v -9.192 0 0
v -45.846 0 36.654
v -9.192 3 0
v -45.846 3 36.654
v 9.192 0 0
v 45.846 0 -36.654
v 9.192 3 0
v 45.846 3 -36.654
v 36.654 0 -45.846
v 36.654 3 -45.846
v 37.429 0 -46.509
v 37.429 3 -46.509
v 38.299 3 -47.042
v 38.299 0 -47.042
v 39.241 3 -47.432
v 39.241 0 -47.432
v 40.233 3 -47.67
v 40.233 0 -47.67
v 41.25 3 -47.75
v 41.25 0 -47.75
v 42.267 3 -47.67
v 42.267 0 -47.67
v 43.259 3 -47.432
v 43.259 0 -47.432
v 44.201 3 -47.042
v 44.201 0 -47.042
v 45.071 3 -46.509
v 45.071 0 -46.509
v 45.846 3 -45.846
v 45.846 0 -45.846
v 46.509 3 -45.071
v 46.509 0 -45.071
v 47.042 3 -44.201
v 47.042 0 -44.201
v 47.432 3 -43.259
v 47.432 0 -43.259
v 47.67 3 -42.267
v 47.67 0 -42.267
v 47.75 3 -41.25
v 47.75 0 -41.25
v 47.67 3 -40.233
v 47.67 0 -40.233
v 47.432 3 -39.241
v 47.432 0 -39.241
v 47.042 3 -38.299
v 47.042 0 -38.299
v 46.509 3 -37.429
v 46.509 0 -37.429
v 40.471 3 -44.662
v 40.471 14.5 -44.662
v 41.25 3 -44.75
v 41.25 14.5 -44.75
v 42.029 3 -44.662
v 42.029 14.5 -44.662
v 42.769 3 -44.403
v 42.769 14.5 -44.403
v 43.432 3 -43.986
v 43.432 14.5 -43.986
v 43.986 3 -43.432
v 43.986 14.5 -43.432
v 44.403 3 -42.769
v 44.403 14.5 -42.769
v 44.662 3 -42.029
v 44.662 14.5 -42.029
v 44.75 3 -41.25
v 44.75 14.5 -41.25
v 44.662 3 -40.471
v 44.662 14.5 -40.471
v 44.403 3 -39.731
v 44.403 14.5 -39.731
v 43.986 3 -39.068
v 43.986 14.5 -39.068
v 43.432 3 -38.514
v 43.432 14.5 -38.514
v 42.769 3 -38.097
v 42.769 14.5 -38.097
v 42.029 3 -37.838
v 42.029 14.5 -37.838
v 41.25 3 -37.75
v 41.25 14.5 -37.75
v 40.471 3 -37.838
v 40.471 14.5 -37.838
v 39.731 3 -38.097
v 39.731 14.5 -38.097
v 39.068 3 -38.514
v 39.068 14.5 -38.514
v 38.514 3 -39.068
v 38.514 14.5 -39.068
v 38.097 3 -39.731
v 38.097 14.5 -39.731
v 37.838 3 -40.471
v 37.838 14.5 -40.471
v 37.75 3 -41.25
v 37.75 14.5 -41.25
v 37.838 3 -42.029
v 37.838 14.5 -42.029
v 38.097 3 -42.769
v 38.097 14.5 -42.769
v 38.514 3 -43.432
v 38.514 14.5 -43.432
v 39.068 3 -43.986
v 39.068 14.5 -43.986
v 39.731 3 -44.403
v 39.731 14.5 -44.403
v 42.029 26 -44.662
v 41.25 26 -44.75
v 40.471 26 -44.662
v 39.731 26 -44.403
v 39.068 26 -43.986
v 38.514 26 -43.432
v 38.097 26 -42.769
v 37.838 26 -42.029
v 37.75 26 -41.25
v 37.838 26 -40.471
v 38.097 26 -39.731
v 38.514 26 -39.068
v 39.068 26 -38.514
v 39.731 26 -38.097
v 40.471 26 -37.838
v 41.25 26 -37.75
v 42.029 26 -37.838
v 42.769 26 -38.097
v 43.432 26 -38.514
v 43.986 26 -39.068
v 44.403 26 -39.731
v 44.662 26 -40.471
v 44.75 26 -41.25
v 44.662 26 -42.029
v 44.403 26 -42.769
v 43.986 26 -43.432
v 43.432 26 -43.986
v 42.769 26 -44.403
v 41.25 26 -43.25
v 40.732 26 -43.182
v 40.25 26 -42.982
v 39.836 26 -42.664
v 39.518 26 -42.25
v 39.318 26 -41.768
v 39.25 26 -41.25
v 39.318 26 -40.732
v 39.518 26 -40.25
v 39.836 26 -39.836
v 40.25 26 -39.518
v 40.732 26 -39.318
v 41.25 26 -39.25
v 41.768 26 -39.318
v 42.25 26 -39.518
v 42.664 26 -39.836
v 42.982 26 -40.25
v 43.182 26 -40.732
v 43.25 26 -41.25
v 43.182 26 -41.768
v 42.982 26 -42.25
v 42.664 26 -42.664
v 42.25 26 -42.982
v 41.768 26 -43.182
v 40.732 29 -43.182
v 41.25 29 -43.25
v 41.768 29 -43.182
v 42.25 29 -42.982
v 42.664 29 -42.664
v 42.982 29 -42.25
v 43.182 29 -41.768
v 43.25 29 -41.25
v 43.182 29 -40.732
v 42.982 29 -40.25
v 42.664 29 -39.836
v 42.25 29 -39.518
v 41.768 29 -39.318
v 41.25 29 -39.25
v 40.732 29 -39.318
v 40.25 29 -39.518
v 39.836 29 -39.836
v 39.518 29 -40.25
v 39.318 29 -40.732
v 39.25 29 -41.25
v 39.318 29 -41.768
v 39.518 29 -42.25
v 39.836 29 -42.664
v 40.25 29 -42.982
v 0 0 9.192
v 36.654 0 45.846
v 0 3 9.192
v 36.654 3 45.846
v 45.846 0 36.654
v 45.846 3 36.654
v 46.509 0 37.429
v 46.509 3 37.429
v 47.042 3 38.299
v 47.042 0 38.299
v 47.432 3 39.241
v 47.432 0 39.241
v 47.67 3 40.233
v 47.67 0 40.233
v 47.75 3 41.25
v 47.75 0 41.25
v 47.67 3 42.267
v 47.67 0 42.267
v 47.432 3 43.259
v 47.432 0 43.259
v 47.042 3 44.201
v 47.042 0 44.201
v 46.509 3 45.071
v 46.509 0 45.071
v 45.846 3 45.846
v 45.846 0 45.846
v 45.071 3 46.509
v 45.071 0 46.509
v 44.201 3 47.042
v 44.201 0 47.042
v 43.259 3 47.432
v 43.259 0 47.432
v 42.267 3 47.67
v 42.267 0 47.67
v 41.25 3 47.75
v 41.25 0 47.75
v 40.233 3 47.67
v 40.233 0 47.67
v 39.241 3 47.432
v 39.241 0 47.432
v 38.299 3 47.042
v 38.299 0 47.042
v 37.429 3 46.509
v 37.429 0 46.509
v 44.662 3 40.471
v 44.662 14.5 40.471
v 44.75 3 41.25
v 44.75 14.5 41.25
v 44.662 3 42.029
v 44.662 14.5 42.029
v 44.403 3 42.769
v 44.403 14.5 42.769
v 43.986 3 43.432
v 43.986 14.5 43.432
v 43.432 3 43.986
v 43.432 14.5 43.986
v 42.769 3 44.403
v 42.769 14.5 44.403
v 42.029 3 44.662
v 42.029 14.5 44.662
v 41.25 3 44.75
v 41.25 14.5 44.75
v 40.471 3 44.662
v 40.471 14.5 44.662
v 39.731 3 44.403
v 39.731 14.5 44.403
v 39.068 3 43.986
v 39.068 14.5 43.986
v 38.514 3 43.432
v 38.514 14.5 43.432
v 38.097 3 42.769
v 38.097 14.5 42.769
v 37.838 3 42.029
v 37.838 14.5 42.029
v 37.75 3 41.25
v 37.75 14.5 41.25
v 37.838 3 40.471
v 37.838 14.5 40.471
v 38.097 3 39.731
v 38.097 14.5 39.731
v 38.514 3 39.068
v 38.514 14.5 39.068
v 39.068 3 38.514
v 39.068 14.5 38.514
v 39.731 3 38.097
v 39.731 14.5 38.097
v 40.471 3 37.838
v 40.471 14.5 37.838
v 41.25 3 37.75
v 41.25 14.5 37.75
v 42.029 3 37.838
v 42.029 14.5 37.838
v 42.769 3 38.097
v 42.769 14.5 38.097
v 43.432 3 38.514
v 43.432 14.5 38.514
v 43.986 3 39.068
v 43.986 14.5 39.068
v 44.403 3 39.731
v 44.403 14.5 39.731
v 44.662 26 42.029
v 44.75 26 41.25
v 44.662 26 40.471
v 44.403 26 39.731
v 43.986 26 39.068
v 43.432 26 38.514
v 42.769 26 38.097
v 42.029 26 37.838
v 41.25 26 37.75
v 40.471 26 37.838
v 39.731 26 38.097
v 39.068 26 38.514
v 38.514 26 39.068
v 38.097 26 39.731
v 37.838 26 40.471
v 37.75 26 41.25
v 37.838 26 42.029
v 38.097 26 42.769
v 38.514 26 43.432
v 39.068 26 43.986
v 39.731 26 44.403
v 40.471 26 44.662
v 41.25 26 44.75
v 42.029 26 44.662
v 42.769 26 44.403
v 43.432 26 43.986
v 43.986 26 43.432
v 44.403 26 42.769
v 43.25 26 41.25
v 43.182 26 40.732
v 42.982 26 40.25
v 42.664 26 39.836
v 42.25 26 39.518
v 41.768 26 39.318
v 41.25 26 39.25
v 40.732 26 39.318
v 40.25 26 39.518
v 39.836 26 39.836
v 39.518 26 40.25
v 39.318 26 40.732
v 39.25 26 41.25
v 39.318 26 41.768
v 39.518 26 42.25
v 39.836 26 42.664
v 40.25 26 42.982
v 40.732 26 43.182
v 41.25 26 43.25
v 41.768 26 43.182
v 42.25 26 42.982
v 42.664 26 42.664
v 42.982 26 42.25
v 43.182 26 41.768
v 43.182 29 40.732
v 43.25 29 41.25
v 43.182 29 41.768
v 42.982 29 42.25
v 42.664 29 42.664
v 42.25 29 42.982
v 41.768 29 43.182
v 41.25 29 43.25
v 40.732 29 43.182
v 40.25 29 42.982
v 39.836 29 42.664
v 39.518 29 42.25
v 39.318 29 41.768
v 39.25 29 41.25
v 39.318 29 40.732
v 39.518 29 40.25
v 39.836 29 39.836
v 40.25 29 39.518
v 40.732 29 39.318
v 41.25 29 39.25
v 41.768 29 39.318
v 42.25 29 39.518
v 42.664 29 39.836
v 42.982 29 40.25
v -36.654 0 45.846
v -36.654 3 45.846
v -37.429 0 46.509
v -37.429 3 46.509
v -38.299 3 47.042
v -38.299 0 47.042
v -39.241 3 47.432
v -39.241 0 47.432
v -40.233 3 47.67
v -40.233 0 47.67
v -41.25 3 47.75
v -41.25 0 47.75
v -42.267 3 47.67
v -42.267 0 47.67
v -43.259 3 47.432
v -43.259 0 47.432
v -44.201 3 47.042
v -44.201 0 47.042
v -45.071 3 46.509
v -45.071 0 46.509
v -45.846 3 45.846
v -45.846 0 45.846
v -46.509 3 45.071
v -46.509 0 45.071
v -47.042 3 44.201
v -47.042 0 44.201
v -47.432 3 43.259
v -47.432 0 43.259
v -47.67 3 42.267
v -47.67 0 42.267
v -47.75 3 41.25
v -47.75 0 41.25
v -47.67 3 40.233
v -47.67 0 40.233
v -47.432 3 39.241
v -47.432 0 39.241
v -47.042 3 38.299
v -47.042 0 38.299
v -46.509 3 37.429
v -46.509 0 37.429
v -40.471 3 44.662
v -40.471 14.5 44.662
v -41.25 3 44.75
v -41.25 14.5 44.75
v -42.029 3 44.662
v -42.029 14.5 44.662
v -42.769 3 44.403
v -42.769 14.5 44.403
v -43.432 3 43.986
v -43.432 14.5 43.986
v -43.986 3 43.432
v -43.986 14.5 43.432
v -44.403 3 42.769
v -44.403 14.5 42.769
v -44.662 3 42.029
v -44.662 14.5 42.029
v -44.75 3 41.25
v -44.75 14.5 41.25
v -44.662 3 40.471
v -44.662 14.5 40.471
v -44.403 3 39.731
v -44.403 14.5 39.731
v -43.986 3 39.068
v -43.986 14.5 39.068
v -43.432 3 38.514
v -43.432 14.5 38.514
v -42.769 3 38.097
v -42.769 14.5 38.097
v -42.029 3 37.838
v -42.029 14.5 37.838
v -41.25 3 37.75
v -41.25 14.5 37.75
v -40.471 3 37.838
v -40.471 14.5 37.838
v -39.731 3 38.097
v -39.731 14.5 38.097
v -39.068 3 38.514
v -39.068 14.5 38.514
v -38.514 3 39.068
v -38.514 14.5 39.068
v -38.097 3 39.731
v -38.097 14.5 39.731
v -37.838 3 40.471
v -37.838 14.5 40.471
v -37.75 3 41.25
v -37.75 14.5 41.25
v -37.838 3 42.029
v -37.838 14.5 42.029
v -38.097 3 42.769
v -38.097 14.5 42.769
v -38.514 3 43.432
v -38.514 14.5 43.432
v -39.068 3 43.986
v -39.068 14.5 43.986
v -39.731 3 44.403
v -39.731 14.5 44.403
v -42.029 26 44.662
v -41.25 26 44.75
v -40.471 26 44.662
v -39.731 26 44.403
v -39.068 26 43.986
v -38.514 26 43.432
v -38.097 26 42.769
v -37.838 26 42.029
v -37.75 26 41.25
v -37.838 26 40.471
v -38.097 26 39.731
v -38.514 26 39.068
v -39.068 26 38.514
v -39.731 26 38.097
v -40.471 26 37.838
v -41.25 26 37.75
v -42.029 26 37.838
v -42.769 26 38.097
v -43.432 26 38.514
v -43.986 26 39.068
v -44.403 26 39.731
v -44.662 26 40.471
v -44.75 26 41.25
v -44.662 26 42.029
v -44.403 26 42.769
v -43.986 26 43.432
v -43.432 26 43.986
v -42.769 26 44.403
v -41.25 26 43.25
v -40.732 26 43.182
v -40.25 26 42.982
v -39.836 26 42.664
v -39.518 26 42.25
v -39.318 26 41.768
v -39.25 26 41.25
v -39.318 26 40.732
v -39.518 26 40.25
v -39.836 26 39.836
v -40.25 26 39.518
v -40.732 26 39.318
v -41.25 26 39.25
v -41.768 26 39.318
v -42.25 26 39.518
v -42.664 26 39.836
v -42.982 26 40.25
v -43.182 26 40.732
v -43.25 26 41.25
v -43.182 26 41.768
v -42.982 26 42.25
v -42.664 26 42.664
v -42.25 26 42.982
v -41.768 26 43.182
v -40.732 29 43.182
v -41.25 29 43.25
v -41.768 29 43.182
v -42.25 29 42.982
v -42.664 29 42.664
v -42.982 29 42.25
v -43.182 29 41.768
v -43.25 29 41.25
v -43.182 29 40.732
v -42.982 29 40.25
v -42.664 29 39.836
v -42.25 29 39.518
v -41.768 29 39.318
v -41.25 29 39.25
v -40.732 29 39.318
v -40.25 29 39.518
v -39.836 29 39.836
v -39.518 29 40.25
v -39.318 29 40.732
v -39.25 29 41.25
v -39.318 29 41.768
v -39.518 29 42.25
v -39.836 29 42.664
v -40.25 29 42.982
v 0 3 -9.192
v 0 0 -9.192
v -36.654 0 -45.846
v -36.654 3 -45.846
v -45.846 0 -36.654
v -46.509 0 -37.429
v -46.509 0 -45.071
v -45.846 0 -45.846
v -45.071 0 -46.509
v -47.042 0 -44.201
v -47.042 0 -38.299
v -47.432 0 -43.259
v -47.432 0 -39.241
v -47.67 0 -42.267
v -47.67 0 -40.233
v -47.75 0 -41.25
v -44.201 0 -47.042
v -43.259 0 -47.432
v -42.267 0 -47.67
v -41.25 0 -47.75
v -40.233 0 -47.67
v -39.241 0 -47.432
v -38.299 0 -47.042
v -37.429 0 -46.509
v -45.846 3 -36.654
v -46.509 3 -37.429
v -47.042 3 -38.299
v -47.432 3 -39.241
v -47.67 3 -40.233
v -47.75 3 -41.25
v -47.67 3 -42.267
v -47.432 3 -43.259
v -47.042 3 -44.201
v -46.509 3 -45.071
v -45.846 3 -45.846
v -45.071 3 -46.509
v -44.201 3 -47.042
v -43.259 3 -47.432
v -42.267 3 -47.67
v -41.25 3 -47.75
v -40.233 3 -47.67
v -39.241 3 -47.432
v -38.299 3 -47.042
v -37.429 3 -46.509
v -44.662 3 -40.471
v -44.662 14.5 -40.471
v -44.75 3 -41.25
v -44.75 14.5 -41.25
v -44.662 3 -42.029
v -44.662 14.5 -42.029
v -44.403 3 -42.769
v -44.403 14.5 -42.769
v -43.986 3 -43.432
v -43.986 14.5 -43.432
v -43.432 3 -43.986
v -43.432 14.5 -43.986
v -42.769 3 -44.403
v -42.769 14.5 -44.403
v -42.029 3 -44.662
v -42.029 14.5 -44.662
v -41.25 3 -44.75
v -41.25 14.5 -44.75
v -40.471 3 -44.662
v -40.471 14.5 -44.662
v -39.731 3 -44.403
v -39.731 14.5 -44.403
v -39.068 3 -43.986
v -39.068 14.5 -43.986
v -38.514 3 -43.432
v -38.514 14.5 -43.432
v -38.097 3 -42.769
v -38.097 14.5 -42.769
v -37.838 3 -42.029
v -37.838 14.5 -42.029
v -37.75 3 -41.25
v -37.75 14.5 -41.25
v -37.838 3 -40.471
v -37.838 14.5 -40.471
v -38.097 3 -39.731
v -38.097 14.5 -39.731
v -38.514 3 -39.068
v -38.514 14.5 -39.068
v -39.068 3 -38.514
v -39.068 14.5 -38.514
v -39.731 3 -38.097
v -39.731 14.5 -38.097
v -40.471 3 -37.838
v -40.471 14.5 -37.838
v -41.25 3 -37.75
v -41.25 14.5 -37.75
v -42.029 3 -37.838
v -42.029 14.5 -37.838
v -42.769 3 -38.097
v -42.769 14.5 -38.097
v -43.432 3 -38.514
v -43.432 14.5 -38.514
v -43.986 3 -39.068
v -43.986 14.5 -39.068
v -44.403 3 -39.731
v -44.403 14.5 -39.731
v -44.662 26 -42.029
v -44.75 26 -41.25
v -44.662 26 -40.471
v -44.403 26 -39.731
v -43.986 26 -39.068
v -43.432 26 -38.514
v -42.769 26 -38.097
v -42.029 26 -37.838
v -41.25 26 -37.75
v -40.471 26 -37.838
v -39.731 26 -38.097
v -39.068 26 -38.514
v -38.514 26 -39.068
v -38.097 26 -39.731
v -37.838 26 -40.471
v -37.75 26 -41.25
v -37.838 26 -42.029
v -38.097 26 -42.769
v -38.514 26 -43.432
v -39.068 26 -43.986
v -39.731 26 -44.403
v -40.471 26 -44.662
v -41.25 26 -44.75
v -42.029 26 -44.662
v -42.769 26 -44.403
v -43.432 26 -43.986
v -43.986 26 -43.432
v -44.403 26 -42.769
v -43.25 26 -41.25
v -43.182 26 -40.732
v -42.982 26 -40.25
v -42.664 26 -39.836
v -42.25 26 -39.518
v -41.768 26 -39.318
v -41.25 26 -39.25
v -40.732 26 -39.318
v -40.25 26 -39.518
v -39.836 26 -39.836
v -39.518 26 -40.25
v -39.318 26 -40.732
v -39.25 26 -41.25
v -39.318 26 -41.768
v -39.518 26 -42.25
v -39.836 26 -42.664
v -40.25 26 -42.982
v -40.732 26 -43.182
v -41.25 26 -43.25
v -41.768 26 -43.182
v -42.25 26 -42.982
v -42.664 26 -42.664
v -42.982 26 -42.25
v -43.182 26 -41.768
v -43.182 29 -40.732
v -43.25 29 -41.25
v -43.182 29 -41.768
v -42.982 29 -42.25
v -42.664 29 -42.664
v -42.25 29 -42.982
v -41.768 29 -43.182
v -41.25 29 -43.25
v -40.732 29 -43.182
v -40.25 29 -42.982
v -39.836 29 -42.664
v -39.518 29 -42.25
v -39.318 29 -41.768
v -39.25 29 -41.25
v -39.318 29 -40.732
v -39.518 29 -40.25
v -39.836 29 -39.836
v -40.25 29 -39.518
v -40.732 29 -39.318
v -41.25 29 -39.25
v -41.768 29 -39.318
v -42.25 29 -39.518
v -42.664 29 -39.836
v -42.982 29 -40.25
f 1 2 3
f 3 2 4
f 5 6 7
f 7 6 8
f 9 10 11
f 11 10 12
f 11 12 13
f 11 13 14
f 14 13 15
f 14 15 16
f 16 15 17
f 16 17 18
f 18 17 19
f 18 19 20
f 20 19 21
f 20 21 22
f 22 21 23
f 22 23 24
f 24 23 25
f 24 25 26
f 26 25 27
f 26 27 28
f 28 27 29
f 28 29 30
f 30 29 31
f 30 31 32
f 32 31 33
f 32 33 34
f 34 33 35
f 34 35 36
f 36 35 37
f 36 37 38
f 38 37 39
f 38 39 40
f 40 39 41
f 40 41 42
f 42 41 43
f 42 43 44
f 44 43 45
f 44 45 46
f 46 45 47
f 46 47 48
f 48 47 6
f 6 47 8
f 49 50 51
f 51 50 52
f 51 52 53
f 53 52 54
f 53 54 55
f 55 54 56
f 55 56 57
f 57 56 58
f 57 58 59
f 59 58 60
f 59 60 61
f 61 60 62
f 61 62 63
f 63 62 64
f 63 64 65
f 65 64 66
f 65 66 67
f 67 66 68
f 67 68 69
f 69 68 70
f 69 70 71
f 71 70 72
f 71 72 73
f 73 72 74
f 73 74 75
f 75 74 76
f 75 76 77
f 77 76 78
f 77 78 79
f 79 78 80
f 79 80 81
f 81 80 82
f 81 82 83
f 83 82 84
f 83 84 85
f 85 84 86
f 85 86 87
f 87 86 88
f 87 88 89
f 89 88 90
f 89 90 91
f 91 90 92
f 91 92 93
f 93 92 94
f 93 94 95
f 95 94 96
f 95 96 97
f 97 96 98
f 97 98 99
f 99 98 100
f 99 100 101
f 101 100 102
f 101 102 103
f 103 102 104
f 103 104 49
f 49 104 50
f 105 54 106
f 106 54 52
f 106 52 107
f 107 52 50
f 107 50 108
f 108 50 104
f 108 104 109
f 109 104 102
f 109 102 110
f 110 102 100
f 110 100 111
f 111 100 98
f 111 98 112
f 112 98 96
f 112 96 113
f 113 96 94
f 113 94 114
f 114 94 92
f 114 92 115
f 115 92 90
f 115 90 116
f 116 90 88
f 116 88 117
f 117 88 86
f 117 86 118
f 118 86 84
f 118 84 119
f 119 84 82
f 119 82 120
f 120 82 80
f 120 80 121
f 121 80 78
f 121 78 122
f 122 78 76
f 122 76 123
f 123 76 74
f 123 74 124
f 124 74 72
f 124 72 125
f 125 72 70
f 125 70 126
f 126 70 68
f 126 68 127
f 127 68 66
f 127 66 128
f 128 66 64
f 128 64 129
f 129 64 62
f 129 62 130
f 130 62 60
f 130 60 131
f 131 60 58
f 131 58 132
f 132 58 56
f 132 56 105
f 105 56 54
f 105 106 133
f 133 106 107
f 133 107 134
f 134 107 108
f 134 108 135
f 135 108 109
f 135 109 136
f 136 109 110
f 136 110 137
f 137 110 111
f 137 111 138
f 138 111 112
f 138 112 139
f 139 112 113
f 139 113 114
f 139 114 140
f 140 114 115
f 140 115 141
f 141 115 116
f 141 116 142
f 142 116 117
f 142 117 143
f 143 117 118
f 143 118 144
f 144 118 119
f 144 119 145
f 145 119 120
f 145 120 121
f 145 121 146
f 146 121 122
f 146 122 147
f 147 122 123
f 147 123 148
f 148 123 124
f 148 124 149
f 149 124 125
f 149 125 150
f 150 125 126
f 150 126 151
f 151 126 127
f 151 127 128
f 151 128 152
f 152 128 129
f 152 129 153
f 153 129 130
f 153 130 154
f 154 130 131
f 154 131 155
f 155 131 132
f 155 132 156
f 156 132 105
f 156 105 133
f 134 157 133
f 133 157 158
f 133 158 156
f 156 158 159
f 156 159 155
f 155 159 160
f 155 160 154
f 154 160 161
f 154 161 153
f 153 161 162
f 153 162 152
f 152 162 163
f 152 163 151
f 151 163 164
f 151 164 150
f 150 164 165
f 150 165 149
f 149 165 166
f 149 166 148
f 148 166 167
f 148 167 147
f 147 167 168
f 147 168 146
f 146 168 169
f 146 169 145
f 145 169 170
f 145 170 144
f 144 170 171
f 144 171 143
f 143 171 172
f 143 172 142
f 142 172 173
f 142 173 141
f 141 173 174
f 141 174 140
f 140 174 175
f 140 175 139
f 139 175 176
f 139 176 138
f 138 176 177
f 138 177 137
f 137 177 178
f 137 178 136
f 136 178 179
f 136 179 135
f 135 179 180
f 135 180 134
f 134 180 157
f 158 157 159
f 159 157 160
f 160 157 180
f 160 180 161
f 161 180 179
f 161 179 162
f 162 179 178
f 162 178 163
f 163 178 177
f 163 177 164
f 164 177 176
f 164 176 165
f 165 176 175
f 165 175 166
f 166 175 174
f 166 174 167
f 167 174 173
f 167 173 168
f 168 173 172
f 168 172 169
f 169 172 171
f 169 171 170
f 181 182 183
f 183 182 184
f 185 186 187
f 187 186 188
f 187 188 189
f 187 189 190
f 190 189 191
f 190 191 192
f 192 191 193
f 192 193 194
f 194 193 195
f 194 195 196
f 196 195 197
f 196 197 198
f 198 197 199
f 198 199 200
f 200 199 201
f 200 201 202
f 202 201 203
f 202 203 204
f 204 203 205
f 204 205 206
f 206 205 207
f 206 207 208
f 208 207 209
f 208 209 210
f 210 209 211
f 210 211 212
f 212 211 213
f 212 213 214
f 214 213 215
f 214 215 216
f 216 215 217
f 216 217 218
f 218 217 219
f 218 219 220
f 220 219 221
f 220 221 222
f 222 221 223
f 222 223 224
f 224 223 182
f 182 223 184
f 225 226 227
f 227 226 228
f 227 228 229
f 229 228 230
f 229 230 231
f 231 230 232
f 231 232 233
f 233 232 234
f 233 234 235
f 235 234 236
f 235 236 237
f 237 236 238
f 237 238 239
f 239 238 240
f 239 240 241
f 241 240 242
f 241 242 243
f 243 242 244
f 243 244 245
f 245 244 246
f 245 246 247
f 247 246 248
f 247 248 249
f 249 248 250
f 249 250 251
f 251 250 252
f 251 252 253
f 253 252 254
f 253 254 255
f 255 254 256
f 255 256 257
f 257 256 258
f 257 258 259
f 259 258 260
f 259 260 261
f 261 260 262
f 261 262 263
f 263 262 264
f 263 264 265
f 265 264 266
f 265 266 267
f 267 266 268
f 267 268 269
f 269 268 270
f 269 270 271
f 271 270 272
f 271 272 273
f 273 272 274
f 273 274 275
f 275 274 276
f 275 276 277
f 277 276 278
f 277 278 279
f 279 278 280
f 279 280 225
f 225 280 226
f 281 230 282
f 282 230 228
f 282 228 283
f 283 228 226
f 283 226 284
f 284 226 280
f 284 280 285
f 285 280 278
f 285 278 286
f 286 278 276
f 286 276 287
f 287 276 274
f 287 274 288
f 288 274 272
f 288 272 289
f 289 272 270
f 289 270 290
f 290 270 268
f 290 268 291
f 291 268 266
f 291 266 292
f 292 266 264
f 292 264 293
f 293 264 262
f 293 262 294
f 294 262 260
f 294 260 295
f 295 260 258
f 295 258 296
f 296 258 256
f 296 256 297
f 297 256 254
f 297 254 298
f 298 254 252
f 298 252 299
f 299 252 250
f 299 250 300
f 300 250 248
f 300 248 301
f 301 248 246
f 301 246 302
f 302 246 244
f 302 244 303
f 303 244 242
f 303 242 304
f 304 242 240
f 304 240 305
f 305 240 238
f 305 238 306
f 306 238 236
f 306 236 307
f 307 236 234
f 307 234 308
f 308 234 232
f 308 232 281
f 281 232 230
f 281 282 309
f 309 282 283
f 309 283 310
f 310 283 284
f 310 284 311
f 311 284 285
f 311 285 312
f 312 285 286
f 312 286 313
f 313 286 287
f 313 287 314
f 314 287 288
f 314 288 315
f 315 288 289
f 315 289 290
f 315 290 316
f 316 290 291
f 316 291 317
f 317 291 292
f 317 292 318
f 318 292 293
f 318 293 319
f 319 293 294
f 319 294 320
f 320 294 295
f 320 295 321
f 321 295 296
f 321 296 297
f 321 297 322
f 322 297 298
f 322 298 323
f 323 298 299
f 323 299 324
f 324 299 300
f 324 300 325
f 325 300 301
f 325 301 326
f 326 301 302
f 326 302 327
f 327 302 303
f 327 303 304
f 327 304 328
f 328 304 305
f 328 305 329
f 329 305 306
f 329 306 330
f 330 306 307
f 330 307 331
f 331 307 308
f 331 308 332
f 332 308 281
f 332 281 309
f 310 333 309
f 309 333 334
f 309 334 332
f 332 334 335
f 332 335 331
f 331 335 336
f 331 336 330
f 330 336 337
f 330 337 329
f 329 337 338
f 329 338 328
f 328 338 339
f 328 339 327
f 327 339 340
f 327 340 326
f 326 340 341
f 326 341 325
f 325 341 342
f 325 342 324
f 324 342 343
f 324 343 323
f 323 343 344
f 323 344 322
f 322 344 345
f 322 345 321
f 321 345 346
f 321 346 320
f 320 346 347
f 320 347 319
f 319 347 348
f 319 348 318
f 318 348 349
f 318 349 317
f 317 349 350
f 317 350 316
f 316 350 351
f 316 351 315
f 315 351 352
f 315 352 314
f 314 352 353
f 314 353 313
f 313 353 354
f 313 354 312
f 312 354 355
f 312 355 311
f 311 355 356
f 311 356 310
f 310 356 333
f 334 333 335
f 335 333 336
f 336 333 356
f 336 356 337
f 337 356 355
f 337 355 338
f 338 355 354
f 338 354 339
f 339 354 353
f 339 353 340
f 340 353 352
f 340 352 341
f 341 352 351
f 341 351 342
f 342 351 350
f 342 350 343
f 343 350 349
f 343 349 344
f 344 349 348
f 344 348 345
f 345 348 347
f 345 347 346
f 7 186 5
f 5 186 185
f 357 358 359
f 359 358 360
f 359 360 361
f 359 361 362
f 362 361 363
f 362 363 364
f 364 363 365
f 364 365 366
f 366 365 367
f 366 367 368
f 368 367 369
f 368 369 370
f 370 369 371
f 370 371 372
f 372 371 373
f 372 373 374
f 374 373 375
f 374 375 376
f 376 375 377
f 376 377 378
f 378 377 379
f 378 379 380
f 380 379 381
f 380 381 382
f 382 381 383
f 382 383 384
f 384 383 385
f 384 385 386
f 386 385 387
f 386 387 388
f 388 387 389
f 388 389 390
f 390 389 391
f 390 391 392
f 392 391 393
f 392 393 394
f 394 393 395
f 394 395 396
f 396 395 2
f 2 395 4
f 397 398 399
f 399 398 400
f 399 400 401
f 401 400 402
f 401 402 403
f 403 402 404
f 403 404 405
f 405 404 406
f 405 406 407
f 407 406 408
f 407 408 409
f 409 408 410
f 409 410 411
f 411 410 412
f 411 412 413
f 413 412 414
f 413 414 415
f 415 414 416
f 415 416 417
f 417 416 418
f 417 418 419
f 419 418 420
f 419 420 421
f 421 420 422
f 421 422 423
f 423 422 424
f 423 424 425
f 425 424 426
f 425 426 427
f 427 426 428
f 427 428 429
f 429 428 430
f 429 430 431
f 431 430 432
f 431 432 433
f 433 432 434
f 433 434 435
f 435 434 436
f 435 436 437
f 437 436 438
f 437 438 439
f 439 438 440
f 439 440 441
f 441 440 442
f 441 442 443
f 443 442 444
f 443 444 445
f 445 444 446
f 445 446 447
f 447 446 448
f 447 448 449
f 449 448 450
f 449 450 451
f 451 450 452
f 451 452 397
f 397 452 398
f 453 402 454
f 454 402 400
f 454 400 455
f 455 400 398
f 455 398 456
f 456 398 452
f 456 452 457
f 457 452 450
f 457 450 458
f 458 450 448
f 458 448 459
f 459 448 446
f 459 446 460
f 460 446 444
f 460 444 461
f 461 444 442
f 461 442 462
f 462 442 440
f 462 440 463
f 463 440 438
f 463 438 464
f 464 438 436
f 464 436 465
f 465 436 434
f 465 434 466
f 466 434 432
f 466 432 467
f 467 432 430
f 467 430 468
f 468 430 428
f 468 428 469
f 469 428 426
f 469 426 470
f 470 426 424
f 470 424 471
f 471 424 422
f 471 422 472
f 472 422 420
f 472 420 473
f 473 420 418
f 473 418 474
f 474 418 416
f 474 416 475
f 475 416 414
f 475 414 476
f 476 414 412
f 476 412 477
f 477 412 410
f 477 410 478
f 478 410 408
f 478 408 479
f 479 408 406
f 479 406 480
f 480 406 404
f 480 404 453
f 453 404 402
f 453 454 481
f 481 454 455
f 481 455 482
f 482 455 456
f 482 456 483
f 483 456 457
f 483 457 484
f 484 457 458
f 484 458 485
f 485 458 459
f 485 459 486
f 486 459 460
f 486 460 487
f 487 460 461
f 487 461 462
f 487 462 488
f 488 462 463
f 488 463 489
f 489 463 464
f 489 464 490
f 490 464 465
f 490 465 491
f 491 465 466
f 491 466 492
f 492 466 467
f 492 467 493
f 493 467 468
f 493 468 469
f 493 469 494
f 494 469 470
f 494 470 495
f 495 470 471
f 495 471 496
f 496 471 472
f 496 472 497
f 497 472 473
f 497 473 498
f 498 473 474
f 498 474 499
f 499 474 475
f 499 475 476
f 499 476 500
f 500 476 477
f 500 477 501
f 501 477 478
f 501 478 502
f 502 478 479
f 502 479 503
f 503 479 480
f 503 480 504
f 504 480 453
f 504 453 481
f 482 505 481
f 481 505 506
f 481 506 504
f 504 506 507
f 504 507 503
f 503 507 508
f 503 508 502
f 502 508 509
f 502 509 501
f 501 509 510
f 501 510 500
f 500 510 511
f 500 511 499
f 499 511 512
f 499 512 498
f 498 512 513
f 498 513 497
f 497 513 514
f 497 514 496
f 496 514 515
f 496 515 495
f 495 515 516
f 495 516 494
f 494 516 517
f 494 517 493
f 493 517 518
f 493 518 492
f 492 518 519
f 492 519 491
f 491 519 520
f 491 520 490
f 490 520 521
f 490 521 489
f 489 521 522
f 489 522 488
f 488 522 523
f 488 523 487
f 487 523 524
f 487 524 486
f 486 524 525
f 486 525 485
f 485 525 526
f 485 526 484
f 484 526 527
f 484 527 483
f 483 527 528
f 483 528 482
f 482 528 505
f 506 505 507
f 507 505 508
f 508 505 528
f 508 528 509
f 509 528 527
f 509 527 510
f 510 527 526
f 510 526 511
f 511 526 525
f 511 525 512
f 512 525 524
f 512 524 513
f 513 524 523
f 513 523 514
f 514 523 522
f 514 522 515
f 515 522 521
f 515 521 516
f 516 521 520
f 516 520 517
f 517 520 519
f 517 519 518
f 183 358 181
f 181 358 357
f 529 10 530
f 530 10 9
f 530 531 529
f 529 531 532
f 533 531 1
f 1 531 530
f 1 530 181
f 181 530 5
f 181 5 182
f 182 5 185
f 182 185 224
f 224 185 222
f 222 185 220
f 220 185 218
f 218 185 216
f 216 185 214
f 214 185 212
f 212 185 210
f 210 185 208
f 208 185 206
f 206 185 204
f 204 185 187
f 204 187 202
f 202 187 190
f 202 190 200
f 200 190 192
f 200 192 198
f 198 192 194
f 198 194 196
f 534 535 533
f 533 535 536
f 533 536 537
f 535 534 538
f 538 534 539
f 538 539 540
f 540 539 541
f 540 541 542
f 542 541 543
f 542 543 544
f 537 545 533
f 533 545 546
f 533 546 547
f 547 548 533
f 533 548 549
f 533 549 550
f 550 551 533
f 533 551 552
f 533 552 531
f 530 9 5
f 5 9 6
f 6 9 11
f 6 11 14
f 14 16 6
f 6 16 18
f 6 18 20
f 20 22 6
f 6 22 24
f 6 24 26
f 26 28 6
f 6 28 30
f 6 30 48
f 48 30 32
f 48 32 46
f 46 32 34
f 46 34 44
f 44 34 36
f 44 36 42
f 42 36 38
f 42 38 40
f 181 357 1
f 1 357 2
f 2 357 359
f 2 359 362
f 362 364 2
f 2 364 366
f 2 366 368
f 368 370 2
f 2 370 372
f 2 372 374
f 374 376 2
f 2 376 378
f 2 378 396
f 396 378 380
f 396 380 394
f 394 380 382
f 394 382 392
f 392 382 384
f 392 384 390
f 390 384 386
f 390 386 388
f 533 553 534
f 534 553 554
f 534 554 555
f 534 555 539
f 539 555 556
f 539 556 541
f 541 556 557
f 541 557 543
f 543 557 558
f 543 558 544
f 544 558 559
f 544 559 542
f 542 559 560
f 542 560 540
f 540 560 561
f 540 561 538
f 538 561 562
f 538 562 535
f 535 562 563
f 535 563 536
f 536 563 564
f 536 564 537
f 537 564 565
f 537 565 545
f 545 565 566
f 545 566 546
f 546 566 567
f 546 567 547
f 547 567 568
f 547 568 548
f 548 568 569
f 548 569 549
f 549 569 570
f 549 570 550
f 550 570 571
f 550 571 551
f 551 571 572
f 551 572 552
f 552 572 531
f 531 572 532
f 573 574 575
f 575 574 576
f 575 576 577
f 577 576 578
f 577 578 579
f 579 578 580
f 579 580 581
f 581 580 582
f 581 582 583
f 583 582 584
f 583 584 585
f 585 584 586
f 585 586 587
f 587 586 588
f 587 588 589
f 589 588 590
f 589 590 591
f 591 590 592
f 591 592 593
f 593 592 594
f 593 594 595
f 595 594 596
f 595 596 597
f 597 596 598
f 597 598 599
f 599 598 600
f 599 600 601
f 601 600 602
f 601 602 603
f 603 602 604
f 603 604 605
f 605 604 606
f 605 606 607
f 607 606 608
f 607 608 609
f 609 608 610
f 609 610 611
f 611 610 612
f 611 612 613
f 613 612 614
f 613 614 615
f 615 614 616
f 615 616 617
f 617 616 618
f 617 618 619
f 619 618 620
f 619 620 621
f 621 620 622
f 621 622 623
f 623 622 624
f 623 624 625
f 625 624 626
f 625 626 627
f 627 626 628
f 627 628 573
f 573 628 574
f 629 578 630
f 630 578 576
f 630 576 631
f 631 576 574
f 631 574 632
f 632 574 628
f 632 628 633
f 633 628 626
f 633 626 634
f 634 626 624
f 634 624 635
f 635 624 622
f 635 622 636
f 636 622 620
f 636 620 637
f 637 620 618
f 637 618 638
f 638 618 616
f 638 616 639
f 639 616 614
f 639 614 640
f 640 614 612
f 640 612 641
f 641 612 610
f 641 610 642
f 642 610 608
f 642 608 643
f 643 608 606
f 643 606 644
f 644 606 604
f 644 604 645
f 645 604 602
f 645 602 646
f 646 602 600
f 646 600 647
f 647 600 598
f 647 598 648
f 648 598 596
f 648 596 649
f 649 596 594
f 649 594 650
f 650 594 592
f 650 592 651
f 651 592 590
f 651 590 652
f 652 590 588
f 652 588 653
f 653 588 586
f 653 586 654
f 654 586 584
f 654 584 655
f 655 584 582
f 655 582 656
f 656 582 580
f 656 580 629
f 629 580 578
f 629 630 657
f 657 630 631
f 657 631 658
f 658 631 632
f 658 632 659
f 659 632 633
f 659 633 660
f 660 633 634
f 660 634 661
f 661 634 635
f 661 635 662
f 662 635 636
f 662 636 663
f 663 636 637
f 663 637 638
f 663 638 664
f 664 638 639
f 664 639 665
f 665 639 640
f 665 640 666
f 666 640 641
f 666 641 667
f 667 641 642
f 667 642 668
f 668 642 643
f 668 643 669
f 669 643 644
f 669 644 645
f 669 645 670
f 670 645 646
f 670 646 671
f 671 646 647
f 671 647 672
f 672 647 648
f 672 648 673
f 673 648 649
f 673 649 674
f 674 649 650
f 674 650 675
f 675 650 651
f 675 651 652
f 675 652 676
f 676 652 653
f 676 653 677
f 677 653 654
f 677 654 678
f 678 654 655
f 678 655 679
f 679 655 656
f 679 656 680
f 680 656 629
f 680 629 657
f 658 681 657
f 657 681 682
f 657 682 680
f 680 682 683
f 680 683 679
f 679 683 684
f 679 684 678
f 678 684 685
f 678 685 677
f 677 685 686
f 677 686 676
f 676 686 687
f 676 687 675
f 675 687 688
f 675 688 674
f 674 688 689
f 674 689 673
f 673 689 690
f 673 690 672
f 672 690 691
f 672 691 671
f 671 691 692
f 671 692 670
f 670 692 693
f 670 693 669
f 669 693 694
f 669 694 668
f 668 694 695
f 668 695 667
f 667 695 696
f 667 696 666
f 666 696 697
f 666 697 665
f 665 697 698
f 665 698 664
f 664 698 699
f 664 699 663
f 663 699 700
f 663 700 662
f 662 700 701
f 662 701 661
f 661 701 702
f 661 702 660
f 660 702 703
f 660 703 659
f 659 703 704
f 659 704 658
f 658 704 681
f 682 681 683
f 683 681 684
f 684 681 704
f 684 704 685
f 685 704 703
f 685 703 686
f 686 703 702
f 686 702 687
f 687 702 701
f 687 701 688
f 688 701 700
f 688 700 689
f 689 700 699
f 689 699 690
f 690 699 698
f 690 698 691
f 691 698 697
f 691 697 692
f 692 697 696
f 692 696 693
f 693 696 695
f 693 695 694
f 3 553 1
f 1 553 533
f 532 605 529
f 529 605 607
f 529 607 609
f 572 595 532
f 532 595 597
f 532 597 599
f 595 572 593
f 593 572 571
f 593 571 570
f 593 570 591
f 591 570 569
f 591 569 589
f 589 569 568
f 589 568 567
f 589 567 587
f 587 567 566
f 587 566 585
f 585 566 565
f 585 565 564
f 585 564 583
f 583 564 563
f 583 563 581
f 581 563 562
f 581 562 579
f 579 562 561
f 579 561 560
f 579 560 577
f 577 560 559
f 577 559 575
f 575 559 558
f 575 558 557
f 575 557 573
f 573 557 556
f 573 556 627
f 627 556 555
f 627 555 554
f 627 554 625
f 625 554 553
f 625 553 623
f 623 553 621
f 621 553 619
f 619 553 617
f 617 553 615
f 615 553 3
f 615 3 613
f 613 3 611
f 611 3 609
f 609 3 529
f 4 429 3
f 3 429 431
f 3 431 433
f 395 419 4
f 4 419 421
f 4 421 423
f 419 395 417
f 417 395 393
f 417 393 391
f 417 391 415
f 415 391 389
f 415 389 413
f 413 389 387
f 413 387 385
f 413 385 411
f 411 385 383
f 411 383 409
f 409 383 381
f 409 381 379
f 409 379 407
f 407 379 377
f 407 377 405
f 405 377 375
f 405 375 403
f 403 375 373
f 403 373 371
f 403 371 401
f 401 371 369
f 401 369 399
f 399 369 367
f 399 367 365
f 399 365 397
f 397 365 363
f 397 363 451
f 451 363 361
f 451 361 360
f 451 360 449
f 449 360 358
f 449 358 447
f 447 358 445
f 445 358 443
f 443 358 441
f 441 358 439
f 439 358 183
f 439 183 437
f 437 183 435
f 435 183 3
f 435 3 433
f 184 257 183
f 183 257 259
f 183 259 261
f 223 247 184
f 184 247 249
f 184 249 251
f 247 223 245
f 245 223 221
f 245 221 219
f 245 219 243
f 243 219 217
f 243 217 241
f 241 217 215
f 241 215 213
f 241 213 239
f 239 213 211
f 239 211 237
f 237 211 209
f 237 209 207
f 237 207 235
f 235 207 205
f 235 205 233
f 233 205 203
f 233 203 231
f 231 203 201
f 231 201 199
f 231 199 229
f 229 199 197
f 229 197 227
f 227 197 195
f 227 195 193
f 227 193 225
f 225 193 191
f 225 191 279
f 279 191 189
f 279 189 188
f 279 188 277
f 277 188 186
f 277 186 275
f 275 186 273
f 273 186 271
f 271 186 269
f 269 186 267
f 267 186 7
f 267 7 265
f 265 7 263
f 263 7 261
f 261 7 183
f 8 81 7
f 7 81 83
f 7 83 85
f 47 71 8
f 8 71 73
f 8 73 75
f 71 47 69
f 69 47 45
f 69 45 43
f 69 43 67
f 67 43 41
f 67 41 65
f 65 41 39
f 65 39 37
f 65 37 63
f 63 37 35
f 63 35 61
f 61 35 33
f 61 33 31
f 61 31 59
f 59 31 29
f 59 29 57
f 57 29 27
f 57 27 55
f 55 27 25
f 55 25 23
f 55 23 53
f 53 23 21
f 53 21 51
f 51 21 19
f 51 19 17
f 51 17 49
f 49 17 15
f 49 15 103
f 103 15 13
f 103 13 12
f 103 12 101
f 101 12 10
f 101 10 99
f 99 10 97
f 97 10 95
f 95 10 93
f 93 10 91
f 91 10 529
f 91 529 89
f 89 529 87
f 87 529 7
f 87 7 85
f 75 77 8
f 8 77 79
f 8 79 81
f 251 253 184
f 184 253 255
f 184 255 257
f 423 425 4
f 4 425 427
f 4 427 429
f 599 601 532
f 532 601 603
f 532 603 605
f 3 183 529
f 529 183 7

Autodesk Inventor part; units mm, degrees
ref_plane "YZ Plane" through (0, 0, 0) normal (1, 0, 0) x (0, 1, 0)
ref_plane "XZ Plane" through (0, 0, 0) normal (0, 1, 0) x (-1, 0, 0)
ref_plane "XY Plane" through (0, 0, 0) normal (0, 0, 1) x (1, 0, 0)
sketch "Sketch1" plane through (0, 0, 0) normal (0, 1, 0) x (-1, 0, 0)
  line L0 (41.25, -41.25) -> (-41.25, -41.25) construction
  line L1 (-41.25, -41.25) -> (-41.25, 41.25) construction
  line L2 (-41.25, 41.25) -> (41.25, 41.25) construction
  line L3 (41.25, 41.25) -> (41.25, -41.25) construction
  circle A0 centre (41.25, -41.25) radius 3.5
  circle A1 centre (41.25, -41.25) radius 2
  circle A2 centre (41.25, -41.25) radius 6.5
  line L4 (45.8462, -36.6538) -> (4.5962, 4.5962)
  line L5 (4.5962, 4.5962) -> (-4.5962, -4.5962)
  line L6 (-4.5962, -4.5962) -> (36.6538, -45.8462)
  point P0 (0, 0)
  point P1 (0, -41.25)
  point P2 (-41.25, 0)
  point P3 (0, 0)
  dimension "d0" = 82.5
  dimension "d1" = 4
  dimension "d2" = 7
  dimension "d3" = 3
extrude "Extrusion1" add sketch "Sketch1" along normal blind 3 contours A2 L6 L5 L4
extrude "Extrusion2" add sketch "Sketch1" along normal blind 29 contours A1
extrude "Extrusion3" add sketch "Sketch1" along normal blind 26 contours A0
extrude "Extrusion4" add sketch "Sketch1" along normal blind 3 contours A2
pattern_circular "Circular Pattern1" count 4 over 360 about axis through (0, -10, 0) along (0, 1, 0) of "Extrusion1", "Extrusion2", "Extrusion3", "Extrusion4"
properties part number "ConformalCoatingJig_3DPrint"
